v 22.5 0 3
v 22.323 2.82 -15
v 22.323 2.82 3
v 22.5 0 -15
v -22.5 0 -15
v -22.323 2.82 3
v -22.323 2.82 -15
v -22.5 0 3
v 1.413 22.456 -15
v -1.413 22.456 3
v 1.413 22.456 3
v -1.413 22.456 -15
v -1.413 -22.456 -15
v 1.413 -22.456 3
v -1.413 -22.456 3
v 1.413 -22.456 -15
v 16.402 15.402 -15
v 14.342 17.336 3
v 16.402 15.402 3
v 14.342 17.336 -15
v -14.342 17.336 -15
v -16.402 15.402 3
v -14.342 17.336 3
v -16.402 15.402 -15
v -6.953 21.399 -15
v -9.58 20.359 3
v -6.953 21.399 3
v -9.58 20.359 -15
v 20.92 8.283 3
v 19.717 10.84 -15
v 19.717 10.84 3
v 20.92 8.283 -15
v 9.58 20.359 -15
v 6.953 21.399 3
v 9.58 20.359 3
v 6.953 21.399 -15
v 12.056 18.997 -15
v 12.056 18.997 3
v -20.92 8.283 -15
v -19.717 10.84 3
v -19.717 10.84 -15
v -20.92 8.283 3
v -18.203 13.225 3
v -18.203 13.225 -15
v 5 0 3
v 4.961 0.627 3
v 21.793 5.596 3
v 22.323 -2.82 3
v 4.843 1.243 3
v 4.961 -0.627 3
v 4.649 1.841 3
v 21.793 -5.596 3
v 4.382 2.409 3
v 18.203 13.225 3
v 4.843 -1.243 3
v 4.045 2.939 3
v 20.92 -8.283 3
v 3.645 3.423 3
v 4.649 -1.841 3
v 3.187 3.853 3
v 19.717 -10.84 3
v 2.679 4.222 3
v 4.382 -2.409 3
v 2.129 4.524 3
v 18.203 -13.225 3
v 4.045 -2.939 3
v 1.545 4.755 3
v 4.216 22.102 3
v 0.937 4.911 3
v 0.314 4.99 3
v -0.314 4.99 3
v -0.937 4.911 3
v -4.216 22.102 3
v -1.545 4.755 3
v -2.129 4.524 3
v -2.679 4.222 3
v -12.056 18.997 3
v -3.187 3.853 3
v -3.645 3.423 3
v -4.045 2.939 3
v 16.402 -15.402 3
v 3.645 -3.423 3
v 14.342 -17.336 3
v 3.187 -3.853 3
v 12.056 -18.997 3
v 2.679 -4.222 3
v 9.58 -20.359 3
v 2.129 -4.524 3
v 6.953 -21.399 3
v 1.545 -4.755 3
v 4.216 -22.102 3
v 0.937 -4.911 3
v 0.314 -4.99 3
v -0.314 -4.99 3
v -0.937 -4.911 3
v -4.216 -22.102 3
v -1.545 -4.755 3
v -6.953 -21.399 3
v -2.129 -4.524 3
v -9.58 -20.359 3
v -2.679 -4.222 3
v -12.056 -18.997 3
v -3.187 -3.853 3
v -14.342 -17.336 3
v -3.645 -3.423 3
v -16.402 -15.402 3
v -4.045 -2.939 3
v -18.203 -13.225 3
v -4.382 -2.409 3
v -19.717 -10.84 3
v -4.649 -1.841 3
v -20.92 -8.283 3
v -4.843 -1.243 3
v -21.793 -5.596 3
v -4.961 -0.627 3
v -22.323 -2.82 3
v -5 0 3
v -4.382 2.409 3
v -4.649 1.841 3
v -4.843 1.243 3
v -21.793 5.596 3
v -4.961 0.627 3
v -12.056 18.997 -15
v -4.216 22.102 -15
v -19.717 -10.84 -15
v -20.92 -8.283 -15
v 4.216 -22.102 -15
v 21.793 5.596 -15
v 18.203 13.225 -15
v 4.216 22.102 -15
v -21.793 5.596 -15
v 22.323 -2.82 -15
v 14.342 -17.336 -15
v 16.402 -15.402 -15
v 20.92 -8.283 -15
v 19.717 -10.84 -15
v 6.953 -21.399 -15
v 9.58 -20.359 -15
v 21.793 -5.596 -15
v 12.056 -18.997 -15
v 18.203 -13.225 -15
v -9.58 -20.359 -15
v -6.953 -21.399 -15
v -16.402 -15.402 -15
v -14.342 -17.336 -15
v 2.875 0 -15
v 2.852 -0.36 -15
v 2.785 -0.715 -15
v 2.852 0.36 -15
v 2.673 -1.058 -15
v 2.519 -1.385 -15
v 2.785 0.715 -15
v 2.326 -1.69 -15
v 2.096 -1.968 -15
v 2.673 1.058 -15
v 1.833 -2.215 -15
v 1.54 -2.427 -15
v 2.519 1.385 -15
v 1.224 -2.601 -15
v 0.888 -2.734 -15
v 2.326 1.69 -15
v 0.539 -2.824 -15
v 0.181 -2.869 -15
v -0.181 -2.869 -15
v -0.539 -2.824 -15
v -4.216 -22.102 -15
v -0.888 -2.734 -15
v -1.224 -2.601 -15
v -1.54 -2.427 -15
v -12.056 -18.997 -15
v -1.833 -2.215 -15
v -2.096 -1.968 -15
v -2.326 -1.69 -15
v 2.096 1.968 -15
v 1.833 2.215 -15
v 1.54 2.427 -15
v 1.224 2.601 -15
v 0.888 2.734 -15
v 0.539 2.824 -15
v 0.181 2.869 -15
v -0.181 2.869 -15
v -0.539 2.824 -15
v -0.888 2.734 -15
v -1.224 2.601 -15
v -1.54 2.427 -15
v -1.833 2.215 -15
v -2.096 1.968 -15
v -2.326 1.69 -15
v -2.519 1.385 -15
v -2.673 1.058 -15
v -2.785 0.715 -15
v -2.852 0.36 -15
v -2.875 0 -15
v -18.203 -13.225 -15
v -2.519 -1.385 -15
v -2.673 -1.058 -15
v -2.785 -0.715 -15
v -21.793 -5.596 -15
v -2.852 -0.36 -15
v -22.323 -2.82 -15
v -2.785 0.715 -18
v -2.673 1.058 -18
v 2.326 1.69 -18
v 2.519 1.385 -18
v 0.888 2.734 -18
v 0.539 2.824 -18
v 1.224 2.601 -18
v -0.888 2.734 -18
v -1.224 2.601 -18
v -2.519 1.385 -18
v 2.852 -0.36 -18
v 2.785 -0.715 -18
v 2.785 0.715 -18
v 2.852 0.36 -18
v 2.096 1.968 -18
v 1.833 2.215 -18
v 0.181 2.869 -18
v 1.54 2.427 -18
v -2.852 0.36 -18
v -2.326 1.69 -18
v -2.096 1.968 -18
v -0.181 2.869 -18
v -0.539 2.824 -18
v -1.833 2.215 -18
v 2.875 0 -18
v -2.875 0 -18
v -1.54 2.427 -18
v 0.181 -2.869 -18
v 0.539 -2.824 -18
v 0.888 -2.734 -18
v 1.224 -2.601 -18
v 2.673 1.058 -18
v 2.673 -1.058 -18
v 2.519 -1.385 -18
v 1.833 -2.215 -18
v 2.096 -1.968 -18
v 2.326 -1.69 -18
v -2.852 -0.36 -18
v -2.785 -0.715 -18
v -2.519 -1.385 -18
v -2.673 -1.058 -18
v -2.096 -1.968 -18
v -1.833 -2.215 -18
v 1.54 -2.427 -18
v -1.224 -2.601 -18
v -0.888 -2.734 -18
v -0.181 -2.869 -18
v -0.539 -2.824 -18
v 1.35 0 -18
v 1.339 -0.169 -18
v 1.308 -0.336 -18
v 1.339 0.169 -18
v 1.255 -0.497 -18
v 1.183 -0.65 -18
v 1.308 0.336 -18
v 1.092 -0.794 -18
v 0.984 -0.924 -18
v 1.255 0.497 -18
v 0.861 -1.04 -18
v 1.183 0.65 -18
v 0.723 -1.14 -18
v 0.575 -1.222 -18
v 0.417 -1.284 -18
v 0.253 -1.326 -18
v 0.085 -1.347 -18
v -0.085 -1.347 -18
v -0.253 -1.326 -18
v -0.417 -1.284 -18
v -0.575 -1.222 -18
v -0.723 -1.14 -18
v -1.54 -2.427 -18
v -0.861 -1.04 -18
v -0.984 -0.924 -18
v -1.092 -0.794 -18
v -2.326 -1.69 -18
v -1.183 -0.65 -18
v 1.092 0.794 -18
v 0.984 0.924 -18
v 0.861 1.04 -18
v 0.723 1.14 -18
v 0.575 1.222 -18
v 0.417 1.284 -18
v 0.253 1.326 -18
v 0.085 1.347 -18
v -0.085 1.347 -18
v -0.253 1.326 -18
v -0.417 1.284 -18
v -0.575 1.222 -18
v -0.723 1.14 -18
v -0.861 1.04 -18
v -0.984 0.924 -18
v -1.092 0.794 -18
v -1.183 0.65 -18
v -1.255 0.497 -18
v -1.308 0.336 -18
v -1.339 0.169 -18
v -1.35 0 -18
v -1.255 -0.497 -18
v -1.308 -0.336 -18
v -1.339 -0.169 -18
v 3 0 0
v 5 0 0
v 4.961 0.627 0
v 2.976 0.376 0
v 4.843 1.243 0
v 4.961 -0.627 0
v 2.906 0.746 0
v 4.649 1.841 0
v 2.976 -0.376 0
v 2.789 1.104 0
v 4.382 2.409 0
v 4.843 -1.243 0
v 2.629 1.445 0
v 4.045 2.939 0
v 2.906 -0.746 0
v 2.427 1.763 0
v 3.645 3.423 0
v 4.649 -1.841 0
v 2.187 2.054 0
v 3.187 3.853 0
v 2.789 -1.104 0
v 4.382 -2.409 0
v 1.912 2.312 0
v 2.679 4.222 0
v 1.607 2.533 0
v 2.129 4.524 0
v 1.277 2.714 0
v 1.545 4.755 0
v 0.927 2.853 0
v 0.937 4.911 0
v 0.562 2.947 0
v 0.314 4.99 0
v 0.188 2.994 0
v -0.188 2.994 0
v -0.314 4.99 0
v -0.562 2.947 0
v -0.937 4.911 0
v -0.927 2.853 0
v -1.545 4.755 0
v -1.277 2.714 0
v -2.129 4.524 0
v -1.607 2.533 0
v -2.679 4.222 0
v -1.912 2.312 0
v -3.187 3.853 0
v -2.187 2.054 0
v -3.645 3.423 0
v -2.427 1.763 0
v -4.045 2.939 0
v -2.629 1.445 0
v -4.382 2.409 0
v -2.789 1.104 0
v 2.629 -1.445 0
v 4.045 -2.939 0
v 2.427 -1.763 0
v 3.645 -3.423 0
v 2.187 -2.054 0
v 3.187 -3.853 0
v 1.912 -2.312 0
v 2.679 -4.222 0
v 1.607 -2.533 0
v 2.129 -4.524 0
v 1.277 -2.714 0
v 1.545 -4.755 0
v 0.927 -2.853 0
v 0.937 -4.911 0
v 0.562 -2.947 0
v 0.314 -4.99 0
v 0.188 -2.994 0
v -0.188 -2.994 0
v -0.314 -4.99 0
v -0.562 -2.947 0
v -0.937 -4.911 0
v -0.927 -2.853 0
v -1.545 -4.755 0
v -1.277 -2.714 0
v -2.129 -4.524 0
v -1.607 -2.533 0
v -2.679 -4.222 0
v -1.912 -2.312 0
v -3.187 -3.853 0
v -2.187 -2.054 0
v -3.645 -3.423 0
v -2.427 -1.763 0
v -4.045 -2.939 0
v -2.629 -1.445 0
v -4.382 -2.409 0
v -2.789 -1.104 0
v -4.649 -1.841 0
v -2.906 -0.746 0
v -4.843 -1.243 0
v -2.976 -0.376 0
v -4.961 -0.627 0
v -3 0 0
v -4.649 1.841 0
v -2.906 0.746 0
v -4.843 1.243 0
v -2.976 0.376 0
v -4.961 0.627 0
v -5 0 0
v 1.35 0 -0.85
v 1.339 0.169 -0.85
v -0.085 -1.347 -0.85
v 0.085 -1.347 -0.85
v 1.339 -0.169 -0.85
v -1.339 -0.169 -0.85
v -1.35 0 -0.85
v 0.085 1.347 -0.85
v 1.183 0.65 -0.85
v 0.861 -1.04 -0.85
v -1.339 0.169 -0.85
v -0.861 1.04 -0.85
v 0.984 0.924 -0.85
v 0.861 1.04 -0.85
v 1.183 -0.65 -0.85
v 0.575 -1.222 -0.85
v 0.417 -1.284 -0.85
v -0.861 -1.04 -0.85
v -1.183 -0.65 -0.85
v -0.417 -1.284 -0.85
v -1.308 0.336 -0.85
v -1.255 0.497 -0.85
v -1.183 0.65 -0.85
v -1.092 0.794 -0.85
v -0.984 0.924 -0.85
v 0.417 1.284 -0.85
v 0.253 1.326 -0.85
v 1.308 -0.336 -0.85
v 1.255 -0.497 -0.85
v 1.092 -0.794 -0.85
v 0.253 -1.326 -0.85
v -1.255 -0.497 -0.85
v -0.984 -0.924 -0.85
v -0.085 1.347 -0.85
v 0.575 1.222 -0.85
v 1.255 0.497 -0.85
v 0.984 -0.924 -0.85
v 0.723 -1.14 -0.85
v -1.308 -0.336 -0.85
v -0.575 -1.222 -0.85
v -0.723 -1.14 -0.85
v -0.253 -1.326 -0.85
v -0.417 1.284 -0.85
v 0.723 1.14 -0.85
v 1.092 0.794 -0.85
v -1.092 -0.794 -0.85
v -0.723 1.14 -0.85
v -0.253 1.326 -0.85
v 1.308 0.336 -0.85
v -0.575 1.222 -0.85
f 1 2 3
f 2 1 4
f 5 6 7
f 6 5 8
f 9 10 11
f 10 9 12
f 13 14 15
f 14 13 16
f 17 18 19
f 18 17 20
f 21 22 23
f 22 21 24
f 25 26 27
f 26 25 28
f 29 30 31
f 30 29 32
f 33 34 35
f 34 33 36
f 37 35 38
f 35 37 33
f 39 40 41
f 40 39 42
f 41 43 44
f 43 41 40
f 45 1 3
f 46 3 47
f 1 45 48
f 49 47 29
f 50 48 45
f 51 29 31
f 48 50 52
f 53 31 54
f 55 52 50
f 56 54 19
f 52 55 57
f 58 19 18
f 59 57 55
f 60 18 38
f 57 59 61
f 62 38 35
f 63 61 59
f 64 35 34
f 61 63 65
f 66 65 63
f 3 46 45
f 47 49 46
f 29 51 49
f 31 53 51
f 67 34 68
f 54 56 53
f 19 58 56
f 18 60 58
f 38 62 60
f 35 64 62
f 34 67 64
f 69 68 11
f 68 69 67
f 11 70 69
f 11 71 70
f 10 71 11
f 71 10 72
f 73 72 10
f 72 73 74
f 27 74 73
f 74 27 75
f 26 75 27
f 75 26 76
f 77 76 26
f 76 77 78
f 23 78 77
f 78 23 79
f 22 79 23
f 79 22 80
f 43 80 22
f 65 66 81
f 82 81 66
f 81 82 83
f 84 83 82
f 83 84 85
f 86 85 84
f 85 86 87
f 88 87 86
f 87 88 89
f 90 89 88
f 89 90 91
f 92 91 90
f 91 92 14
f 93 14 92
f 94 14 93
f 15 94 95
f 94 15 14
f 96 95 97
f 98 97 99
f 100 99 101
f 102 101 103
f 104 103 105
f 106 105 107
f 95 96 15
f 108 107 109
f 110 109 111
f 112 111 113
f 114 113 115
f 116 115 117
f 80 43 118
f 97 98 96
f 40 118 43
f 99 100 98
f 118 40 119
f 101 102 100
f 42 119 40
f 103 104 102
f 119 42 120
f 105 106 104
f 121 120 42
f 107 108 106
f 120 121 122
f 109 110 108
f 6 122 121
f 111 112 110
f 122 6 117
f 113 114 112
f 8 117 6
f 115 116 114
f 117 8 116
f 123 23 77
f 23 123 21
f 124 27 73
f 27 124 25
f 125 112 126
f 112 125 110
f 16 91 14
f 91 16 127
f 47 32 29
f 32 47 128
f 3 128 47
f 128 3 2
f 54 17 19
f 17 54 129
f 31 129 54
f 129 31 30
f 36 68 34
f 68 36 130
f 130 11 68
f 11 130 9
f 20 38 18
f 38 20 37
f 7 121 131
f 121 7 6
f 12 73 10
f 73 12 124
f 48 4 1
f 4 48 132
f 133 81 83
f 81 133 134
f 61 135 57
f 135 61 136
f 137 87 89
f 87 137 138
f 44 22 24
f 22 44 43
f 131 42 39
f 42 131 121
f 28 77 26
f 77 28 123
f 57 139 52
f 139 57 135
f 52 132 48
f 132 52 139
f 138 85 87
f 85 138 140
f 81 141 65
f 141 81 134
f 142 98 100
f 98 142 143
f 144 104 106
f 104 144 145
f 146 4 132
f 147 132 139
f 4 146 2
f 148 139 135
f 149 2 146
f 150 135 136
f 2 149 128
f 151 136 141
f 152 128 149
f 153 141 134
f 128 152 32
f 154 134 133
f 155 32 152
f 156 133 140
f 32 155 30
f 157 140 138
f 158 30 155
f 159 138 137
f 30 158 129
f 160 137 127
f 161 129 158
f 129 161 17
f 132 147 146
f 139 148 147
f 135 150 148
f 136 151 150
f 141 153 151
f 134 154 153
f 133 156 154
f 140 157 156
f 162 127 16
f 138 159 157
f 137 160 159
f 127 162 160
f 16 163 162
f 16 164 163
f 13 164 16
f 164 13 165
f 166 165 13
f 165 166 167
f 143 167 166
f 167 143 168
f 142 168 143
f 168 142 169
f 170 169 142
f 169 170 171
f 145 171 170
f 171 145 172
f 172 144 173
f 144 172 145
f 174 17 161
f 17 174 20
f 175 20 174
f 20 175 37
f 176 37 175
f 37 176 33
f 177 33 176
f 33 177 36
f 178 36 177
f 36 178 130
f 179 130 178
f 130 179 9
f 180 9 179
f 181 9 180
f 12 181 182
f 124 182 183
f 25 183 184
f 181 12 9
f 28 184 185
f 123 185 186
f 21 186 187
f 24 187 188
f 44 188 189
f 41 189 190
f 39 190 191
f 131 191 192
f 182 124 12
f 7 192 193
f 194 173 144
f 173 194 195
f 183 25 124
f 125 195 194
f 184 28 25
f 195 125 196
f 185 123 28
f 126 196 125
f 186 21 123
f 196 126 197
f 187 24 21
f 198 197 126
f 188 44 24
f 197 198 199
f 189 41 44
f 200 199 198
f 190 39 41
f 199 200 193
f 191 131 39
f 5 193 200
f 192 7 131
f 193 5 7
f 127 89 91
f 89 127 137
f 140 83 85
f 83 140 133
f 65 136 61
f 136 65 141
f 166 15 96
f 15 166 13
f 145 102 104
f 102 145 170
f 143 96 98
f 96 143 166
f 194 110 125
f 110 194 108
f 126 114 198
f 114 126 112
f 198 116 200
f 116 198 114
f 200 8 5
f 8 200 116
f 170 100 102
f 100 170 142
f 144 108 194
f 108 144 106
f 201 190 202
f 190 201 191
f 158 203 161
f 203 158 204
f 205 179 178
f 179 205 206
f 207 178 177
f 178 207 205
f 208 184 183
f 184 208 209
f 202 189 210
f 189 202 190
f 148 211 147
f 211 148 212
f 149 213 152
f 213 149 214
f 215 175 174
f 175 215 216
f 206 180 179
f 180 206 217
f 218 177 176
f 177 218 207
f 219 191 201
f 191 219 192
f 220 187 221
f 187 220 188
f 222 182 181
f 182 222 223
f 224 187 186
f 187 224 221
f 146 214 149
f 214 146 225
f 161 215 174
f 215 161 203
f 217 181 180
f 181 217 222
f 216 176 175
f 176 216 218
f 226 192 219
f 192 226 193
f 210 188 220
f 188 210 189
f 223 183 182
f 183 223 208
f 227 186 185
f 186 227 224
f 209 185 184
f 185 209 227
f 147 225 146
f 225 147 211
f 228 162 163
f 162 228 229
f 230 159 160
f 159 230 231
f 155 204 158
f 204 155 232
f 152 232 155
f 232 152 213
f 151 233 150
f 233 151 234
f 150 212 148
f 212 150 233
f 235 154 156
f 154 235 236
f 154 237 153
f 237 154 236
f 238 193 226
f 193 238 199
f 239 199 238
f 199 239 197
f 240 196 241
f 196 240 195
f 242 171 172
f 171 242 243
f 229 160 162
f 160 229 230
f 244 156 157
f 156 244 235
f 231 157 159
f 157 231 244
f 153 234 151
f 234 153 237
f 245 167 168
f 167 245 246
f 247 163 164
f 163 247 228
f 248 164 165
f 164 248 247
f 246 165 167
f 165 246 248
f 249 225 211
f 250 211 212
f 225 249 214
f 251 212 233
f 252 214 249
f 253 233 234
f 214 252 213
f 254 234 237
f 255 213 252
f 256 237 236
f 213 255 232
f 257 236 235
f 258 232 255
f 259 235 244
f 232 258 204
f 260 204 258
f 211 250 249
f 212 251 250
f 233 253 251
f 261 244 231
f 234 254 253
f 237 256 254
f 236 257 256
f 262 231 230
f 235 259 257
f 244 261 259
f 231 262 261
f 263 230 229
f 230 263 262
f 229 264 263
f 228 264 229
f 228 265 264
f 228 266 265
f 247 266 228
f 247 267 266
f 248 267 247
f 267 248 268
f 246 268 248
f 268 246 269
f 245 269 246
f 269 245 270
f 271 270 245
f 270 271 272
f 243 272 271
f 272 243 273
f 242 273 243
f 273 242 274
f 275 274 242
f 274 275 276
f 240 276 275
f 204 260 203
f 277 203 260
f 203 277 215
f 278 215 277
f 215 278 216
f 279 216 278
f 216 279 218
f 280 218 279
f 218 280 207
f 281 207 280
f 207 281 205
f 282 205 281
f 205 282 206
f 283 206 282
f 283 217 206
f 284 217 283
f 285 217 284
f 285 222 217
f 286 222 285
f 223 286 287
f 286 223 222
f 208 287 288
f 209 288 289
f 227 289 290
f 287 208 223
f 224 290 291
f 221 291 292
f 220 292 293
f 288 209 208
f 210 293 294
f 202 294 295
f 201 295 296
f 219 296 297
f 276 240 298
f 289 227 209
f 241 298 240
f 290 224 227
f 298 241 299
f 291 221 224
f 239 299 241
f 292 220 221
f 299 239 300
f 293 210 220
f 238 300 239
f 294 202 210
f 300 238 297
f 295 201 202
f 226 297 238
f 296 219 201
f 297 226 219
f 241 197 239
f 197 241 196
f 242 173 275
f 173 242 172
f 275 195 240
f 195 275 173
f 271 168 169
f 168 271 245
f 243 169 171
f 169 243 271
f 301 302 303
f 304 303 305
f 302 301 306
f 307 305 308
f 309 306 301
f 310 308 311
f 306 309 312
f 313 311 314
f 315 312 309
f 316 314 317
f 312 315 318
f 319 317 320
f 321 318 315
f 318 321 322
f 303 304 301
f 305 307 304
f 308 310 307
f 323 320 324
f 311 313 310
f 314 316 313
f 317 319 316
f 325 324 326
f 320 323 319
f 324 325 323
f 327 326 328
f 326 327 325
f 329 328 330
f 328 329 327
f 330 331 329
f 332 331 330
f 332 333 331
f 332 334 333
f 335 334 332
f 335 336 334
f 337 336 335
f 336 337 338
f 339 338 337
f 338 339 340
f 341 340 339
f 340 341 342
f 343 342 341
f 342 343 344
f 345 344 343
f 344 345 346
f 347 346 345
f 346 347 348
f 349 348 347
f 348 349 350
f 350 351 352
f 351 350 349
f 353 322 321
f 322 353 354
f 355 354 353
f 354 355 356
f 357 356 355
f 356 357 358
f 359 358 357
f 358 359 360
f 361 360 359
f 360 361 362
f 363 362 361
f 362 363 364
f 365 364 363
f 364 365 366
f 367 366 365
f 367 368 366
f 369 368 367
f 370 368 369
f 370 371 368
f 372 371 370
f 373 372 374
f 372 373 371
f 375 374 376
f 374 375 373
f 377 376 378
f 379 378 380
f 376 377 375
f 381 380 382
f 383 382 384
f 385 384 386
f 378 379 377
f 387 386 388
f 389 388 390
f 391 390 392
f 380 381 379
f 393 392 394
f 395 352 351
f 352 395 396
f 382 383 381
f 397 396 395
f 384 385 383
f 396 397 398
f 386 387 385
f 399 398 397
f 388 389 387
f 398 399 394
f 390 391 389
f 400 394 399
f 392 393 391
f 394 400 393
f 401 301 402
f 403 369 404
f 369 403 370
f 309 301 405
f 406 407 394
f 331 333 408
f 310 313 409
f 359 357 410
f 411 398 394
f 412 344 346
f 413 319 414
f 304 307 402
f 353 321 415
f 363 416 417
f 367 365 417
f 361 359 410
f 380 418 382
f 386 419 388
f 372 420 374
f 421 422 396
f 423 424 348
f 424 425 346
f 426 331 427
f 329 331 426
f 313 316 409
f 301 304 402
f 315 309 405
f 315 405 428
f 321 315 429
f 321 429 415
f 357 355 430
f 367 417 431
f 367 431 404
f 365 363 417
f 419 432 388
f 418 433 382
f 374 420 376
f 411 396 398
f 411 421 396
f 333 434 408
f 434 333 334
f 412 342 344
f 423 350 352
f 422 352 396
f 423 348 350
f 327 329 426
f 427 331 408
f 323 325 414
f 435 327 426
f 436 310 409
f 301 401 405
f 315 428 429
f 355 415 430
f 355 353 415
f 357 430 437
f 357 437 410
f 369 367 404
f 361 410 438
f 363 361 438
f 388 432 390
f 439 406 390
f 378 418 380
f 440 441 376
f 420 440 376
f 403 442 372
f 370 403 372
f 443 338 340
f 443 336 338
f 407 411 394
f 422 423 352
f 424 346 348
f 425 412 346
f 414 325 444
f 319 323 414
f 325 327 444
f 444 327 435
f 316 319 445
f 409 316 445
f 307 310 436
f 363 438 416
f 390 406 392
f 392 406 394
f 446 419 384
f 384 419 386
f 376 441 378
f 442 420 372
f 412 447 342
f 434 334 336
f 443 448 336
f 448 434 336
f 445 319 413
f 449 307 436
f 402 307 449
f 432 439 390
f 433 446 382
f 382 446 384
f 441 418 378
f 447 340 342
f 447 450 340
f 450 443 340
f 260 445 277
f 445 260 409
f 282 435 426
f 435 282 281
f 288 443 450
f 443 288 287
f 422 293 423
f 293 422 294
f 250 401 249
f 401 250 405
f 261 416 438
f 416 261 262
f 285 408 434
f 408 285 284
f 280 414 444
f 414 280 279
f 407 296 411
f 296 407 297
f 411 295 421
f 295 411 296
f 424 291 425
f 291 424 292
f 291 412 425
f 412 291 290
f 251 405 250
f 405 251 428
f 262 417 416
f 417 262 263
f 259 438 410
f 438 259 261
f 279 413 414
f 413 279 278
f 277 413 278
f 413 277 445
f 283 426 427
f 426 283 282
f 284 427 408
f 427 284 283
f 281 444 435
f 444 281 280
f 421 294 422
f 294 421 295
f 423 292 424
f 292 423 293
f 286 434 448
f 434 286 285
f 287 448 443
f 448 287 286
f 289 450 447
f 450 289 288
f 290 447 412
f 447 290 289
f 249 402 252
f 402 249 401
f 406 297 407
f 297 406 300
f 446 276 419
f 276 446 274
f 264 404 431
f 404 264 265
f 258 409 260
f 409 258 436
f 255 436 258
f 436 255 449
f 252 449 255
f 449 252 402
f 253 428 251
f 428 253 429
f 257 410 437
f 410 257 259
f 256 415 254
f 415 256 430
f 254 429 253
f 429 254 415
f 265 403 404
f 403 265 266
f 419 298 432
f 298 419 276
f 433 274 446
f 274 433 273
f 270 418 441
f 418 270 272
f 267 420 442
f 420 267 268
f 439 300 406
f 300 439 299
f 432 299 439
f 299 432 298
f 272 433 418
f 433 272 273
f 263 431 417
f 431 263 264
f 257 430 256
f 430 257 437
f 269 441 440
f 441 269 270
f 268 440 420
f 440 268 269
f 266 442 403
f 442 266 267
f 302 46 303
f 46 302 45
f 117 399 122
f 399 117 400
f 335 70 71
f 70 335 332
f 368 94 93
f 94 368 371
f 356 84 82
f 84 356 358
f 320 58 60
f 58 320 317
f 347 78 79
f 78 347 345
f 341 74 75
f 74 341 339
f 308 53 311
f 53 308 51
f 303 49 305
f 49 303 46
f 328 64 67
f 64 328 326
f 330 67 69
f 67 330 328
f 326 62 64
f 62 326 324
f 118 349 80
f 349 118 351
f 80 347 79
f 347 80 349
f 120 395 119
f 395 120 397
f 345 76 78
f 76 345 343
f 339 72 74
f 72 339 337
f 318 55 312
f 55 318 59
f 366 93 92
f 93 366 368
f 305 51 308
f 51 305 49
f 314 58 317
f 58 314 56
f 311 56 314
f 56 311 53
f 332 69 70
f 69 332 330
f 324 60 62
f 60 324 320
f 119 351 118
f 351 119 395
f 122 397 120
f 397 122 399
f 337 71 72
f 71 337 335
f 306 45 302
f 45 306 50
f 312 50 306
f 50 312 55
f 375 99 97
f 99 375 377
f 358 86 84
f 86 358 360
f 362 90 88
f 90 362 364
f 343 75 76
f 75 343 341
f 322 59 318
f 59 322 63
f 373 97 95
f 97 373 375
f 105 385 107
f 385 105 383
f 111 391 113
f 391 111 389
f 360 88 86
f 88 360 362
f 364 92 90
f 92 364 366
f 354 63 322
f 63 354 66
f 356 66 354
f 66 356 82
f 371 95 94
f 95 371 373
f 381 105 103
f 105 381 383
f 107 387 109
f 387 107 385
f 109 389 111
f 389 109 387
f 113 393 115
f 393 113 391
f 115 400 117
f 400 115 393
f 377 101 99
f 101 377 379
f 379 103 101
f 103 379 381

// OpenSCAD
$fn = 50;

difference() {
	union() {
		translate(v = [0, 0, -15.0]) {
			cylinder(h = 18, r = 22.5);
		}
		#translate(v = [0, 0, -18.0]) {
			cylinder(h = 18, r = 2.875);
		}
	}
	union() {
		translate(v = [0, 0, 0]) {
			rotate(a = [0, 0, 0]) {
				difference() {
					union() {
						translate(v = [0, 0, -18.0]) {
							cylinder(h = 18, r = 1.0);
						}
						translate(v = [0, 0, -0.85]) {
							cylinder(h = 0.85, r1 = 1.35, r2 = 3.0);
						}
						translate(v = [0, 0, -18.0]) {
							cylinder(h = 18, r = 1.35);
						}
						translate(v = [0, 0, -18.0]) {
							cylinder(h = 18, r = 1.0);
						}
					}
					union();
				}
			}
		}
		#cylinder(h = 3, r = 5.0);
	}
}
